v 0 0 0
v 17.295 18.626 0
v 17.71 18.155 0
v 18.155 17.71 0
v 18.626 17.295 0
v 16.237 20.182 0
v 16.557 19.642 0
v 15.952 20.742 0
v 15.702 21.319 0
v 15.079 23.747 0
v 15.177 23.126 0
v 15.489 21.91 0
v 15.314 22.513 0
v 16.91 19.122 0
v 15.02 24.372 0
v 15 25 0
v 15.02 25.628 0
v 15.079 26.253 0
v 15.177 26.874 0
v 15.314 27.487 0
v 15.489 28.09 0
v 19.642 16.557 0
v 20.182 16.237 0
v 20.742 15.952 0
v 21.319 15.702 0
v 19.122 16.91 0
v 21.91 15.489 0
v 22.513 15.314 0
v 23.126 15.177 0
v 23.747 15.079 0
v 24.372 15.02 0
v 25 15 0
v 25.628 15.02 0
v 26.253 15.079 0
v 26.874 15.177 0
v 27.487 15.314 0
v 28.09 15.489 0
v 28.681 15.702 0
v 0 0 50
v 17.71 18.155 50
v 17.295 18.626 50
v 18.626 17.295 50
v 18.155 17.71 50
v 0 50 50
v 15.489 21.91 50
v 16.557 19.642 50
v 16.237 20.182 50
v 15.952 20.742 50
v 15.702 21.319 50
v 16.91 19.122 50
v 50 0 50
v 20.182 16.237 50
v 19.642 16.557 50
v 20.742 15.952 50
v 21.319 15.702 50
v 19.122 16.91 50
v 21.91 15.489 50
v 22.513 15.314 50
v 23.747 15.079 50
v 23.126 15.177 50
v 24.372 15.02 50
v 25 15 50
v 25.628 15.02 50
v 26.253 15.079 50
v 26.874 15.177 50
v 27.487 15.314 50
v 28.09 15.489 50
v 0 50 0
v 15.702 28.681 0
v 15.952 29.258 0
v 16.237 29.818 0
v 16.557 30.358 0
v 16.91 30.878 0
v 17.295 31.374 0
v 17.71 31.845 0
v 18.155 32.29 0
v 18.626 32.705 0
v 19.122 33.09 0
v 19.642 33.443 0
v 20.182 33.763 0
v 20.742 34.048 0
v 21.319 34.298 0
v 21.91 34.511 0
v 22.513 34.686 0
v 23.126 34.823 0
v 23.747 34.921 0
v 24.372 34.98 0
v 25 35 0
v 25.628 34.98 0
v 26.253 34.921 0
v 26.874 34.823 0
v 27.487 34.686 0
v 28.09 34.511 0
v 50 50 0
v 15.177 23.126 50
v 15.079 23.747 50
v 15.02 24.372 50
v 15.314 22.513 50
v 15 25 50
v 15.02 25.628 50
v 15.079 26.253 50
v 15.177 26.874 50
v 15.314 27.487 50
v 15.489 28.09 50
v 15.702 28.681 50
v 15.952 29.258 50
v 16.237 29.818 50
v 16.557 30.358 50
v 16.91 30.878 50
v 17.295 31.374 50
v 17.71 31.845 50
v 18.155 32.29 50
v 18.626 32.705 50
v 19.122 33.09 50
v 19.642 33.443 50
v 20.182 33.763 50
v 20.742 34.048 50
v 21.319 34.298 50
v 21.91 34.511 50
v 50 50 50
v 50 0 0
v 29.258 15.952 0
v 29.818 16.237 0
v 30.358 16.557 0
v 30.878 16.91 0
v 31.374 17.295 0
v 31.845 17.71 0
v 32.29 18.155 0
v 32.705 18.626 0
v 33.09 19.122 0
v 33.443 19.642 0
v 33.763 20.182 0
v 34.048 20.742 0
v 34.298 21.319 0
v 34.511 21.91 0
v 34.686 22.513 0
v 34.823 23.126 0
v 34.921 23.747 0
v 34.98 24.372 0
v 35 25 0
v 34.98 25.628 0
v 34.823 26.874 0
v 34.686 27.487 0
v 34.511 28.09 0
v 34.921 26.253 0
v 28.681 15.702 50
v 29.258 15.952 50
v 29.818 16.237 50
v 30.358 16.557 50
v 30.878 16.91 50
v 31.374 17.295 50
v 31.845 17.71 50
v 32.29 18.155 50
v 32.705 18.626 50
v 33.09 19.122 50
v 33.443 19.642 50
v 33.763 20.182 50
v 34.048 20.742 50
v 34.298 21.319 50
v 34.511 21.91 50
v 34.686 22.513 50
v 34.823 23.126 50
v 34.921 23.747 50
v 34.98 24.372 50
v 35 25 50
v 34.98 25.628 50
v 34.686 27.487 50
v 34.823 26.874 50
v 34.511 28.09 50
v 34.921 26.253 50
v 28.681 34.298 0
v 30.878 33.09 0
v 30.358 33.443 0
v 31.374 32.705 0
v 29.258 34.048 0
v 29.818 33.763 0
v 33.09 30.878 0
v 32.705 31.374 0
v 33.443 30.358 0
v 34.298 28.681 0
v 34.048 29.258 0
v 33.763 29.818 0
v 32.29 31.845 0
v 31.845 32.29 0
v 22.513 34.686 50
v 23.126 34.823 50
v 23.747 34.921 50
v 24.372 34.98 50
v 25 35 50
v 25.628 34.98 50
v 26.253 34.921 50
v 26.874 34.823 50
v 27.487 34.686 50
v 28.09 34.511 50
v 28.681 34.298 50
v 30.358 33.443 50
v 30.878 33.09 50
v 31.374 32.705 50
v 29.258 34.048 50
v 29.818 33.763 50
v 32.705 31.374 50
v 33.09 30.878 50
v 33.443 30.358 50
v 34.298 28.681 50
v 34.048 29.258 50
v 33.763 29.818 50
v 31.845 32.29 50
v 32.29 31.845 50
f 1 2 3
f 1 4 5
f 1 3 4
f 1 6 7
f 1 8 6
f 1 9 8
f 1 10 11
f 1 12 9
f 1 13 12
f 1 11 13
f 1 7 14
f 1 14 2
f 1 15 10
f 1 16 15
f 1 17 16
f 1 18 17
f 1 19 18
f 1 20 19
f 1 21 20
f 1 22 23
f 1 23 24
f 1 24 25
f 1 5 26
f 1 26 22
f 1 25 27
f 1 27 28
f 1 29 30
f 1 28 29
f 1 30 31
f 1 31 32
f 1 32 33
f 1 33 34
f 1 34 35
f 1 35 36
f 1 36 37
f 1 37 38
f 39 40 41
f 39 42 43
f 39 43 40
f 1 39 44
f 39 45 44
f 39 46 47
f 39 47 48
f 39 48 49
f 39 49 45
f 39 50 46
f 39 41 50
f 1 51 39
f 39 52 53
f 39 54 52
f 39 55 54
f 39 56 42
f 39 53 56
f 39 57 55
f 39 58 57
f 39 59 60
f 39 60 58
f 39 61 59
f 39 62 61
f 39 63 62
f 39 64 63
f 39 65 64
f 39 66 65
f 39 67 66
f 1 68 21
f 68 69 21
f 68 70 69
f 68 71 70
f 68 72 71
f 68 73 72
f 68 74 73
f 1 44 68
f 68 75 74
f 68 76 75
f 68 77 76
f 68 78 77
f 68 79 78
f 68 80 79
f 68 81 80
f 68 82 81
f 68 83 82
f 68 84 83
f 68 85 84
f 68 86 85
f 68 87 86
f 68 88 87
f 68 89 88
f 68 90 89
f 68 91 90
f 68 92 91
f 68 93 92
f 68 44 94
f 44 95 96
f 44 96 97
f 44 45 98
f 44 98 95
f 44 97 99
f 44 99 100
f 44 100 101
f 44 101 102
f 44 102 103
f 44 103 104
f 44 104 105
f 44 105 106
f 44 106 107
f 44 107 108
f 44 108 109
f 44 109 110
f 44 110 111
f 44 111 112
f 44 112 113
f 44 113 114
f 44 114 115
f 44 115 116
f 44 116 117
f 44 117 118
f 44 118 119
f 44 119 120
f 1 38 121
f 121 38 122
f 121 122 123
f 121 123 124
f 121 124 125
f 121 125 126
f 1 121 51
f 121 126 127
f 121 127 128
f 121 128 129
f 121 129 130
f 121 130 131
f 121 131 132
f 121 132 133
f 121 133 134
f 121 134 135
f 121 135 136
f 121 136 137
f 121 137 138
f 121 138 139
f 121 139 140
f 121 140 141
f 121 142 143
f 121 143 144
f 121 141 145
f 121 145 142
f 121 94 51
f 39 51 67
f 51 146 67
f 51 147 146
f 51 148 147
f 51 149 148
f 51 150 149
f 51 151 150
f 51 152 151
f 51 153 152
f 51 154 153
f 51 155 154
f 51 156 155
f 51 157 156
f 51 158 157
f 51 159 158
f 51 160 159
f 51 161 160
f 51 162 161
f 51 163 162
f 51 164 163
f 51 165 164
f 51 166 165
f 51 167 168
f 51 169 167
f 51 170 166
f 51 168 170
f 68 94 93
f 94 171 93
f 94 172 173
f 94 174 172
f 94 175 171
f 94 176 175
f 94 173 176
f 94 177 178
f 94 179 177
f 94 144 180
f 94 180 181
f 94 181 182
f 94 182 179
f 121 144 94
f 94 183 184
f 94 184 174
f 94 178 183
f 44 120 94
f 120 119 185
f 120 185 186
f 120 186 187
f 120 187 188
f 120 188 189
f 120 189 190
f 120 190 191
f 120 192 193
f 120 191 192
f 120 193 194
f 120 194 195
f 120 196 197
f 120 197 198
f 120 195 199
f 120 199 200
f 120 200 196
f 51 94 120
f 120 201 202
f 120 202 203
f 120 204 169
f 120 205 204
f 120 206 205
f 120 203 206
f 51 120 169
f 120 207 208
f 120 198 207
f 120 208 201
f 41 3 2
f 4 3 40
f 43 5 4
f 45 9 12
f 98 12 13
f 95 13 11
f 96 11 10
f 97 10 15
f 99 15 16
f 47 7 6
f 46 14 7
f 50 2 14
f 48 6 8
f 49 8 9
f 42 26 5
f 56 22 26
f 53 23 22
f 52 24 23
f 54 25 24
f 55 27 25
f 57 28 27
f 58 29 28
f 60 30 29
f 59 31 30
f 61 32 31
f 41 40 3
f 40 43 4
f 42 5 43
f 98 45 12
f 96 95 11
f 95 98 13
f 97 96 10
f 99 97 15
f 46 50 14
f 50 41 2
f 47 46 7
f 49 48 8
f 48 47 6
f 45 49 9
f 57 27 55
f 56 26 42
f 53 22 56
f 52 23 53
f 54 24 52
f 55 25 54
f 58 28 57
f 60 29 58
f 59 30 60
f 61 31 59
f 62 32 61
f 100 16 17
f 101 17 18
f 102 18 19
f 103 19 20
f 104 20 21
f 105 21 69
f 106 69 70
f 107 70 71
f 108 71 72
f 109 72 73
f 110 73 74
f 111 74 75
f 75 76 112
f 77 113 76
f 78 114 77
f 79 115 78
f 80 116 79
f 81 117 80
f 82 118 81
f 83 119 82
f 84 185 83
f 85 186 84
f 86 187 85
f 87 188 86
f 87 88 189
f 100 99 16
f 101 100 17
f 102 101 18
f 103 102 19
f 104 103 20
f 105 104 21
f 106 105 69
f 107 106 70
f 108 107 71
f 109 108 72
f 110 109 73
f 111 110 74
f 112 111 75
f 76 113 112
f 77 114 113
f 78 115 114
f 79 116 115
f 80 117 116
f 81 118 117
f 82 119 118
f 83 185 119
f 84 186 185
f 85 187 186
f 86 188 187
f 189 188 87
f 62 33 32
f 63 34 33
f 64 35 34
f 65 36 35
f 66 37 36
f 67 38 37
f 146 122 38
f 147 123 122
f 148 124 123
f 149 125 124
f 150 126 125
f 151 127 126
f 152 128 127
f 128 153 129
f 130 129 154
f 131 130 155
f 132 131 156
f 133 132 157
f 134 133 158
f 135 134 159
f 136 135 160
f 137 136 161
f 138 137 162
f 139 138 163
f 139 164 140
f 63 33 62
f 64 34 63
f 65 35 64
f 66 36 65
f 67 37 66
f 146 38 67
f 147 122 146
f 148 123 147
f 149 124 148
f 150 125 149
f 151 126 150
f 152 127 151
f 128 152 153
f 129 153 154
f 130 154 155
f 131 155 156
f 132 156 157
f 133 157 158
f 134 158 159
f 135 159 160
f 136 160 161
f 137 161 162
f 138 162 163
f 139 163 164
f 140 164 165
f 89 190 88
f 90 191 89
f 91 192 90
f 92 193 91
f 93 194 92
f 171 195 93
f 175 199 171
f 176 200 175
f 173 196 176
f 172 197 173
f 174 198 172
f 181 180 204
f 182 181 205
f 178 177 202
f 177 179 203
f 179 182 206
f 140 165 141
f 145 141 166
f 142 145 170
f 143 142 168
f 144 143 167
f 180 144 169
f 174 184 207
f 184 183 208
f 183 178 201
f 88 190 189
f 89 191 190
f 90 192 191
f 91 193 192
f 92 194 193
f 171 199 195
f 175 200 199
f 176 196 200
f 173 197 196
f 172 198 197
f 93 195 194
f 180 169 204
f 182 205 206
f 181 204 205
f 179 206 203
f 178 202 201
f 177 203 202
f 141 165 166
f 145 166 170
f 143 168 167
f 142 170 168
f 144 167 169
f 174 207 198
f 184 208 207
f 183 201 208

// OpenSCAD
difference() {
    // 50mm角の立方体（原点に配置）
    cube([50, 50, 50]);
    // 直径20mmの穴をz軸方向に貫通（立方体の中心に配置）
    translate([25, 25, -5])
        cylinder(h = 60, d = 20, $fn = 100);
}
